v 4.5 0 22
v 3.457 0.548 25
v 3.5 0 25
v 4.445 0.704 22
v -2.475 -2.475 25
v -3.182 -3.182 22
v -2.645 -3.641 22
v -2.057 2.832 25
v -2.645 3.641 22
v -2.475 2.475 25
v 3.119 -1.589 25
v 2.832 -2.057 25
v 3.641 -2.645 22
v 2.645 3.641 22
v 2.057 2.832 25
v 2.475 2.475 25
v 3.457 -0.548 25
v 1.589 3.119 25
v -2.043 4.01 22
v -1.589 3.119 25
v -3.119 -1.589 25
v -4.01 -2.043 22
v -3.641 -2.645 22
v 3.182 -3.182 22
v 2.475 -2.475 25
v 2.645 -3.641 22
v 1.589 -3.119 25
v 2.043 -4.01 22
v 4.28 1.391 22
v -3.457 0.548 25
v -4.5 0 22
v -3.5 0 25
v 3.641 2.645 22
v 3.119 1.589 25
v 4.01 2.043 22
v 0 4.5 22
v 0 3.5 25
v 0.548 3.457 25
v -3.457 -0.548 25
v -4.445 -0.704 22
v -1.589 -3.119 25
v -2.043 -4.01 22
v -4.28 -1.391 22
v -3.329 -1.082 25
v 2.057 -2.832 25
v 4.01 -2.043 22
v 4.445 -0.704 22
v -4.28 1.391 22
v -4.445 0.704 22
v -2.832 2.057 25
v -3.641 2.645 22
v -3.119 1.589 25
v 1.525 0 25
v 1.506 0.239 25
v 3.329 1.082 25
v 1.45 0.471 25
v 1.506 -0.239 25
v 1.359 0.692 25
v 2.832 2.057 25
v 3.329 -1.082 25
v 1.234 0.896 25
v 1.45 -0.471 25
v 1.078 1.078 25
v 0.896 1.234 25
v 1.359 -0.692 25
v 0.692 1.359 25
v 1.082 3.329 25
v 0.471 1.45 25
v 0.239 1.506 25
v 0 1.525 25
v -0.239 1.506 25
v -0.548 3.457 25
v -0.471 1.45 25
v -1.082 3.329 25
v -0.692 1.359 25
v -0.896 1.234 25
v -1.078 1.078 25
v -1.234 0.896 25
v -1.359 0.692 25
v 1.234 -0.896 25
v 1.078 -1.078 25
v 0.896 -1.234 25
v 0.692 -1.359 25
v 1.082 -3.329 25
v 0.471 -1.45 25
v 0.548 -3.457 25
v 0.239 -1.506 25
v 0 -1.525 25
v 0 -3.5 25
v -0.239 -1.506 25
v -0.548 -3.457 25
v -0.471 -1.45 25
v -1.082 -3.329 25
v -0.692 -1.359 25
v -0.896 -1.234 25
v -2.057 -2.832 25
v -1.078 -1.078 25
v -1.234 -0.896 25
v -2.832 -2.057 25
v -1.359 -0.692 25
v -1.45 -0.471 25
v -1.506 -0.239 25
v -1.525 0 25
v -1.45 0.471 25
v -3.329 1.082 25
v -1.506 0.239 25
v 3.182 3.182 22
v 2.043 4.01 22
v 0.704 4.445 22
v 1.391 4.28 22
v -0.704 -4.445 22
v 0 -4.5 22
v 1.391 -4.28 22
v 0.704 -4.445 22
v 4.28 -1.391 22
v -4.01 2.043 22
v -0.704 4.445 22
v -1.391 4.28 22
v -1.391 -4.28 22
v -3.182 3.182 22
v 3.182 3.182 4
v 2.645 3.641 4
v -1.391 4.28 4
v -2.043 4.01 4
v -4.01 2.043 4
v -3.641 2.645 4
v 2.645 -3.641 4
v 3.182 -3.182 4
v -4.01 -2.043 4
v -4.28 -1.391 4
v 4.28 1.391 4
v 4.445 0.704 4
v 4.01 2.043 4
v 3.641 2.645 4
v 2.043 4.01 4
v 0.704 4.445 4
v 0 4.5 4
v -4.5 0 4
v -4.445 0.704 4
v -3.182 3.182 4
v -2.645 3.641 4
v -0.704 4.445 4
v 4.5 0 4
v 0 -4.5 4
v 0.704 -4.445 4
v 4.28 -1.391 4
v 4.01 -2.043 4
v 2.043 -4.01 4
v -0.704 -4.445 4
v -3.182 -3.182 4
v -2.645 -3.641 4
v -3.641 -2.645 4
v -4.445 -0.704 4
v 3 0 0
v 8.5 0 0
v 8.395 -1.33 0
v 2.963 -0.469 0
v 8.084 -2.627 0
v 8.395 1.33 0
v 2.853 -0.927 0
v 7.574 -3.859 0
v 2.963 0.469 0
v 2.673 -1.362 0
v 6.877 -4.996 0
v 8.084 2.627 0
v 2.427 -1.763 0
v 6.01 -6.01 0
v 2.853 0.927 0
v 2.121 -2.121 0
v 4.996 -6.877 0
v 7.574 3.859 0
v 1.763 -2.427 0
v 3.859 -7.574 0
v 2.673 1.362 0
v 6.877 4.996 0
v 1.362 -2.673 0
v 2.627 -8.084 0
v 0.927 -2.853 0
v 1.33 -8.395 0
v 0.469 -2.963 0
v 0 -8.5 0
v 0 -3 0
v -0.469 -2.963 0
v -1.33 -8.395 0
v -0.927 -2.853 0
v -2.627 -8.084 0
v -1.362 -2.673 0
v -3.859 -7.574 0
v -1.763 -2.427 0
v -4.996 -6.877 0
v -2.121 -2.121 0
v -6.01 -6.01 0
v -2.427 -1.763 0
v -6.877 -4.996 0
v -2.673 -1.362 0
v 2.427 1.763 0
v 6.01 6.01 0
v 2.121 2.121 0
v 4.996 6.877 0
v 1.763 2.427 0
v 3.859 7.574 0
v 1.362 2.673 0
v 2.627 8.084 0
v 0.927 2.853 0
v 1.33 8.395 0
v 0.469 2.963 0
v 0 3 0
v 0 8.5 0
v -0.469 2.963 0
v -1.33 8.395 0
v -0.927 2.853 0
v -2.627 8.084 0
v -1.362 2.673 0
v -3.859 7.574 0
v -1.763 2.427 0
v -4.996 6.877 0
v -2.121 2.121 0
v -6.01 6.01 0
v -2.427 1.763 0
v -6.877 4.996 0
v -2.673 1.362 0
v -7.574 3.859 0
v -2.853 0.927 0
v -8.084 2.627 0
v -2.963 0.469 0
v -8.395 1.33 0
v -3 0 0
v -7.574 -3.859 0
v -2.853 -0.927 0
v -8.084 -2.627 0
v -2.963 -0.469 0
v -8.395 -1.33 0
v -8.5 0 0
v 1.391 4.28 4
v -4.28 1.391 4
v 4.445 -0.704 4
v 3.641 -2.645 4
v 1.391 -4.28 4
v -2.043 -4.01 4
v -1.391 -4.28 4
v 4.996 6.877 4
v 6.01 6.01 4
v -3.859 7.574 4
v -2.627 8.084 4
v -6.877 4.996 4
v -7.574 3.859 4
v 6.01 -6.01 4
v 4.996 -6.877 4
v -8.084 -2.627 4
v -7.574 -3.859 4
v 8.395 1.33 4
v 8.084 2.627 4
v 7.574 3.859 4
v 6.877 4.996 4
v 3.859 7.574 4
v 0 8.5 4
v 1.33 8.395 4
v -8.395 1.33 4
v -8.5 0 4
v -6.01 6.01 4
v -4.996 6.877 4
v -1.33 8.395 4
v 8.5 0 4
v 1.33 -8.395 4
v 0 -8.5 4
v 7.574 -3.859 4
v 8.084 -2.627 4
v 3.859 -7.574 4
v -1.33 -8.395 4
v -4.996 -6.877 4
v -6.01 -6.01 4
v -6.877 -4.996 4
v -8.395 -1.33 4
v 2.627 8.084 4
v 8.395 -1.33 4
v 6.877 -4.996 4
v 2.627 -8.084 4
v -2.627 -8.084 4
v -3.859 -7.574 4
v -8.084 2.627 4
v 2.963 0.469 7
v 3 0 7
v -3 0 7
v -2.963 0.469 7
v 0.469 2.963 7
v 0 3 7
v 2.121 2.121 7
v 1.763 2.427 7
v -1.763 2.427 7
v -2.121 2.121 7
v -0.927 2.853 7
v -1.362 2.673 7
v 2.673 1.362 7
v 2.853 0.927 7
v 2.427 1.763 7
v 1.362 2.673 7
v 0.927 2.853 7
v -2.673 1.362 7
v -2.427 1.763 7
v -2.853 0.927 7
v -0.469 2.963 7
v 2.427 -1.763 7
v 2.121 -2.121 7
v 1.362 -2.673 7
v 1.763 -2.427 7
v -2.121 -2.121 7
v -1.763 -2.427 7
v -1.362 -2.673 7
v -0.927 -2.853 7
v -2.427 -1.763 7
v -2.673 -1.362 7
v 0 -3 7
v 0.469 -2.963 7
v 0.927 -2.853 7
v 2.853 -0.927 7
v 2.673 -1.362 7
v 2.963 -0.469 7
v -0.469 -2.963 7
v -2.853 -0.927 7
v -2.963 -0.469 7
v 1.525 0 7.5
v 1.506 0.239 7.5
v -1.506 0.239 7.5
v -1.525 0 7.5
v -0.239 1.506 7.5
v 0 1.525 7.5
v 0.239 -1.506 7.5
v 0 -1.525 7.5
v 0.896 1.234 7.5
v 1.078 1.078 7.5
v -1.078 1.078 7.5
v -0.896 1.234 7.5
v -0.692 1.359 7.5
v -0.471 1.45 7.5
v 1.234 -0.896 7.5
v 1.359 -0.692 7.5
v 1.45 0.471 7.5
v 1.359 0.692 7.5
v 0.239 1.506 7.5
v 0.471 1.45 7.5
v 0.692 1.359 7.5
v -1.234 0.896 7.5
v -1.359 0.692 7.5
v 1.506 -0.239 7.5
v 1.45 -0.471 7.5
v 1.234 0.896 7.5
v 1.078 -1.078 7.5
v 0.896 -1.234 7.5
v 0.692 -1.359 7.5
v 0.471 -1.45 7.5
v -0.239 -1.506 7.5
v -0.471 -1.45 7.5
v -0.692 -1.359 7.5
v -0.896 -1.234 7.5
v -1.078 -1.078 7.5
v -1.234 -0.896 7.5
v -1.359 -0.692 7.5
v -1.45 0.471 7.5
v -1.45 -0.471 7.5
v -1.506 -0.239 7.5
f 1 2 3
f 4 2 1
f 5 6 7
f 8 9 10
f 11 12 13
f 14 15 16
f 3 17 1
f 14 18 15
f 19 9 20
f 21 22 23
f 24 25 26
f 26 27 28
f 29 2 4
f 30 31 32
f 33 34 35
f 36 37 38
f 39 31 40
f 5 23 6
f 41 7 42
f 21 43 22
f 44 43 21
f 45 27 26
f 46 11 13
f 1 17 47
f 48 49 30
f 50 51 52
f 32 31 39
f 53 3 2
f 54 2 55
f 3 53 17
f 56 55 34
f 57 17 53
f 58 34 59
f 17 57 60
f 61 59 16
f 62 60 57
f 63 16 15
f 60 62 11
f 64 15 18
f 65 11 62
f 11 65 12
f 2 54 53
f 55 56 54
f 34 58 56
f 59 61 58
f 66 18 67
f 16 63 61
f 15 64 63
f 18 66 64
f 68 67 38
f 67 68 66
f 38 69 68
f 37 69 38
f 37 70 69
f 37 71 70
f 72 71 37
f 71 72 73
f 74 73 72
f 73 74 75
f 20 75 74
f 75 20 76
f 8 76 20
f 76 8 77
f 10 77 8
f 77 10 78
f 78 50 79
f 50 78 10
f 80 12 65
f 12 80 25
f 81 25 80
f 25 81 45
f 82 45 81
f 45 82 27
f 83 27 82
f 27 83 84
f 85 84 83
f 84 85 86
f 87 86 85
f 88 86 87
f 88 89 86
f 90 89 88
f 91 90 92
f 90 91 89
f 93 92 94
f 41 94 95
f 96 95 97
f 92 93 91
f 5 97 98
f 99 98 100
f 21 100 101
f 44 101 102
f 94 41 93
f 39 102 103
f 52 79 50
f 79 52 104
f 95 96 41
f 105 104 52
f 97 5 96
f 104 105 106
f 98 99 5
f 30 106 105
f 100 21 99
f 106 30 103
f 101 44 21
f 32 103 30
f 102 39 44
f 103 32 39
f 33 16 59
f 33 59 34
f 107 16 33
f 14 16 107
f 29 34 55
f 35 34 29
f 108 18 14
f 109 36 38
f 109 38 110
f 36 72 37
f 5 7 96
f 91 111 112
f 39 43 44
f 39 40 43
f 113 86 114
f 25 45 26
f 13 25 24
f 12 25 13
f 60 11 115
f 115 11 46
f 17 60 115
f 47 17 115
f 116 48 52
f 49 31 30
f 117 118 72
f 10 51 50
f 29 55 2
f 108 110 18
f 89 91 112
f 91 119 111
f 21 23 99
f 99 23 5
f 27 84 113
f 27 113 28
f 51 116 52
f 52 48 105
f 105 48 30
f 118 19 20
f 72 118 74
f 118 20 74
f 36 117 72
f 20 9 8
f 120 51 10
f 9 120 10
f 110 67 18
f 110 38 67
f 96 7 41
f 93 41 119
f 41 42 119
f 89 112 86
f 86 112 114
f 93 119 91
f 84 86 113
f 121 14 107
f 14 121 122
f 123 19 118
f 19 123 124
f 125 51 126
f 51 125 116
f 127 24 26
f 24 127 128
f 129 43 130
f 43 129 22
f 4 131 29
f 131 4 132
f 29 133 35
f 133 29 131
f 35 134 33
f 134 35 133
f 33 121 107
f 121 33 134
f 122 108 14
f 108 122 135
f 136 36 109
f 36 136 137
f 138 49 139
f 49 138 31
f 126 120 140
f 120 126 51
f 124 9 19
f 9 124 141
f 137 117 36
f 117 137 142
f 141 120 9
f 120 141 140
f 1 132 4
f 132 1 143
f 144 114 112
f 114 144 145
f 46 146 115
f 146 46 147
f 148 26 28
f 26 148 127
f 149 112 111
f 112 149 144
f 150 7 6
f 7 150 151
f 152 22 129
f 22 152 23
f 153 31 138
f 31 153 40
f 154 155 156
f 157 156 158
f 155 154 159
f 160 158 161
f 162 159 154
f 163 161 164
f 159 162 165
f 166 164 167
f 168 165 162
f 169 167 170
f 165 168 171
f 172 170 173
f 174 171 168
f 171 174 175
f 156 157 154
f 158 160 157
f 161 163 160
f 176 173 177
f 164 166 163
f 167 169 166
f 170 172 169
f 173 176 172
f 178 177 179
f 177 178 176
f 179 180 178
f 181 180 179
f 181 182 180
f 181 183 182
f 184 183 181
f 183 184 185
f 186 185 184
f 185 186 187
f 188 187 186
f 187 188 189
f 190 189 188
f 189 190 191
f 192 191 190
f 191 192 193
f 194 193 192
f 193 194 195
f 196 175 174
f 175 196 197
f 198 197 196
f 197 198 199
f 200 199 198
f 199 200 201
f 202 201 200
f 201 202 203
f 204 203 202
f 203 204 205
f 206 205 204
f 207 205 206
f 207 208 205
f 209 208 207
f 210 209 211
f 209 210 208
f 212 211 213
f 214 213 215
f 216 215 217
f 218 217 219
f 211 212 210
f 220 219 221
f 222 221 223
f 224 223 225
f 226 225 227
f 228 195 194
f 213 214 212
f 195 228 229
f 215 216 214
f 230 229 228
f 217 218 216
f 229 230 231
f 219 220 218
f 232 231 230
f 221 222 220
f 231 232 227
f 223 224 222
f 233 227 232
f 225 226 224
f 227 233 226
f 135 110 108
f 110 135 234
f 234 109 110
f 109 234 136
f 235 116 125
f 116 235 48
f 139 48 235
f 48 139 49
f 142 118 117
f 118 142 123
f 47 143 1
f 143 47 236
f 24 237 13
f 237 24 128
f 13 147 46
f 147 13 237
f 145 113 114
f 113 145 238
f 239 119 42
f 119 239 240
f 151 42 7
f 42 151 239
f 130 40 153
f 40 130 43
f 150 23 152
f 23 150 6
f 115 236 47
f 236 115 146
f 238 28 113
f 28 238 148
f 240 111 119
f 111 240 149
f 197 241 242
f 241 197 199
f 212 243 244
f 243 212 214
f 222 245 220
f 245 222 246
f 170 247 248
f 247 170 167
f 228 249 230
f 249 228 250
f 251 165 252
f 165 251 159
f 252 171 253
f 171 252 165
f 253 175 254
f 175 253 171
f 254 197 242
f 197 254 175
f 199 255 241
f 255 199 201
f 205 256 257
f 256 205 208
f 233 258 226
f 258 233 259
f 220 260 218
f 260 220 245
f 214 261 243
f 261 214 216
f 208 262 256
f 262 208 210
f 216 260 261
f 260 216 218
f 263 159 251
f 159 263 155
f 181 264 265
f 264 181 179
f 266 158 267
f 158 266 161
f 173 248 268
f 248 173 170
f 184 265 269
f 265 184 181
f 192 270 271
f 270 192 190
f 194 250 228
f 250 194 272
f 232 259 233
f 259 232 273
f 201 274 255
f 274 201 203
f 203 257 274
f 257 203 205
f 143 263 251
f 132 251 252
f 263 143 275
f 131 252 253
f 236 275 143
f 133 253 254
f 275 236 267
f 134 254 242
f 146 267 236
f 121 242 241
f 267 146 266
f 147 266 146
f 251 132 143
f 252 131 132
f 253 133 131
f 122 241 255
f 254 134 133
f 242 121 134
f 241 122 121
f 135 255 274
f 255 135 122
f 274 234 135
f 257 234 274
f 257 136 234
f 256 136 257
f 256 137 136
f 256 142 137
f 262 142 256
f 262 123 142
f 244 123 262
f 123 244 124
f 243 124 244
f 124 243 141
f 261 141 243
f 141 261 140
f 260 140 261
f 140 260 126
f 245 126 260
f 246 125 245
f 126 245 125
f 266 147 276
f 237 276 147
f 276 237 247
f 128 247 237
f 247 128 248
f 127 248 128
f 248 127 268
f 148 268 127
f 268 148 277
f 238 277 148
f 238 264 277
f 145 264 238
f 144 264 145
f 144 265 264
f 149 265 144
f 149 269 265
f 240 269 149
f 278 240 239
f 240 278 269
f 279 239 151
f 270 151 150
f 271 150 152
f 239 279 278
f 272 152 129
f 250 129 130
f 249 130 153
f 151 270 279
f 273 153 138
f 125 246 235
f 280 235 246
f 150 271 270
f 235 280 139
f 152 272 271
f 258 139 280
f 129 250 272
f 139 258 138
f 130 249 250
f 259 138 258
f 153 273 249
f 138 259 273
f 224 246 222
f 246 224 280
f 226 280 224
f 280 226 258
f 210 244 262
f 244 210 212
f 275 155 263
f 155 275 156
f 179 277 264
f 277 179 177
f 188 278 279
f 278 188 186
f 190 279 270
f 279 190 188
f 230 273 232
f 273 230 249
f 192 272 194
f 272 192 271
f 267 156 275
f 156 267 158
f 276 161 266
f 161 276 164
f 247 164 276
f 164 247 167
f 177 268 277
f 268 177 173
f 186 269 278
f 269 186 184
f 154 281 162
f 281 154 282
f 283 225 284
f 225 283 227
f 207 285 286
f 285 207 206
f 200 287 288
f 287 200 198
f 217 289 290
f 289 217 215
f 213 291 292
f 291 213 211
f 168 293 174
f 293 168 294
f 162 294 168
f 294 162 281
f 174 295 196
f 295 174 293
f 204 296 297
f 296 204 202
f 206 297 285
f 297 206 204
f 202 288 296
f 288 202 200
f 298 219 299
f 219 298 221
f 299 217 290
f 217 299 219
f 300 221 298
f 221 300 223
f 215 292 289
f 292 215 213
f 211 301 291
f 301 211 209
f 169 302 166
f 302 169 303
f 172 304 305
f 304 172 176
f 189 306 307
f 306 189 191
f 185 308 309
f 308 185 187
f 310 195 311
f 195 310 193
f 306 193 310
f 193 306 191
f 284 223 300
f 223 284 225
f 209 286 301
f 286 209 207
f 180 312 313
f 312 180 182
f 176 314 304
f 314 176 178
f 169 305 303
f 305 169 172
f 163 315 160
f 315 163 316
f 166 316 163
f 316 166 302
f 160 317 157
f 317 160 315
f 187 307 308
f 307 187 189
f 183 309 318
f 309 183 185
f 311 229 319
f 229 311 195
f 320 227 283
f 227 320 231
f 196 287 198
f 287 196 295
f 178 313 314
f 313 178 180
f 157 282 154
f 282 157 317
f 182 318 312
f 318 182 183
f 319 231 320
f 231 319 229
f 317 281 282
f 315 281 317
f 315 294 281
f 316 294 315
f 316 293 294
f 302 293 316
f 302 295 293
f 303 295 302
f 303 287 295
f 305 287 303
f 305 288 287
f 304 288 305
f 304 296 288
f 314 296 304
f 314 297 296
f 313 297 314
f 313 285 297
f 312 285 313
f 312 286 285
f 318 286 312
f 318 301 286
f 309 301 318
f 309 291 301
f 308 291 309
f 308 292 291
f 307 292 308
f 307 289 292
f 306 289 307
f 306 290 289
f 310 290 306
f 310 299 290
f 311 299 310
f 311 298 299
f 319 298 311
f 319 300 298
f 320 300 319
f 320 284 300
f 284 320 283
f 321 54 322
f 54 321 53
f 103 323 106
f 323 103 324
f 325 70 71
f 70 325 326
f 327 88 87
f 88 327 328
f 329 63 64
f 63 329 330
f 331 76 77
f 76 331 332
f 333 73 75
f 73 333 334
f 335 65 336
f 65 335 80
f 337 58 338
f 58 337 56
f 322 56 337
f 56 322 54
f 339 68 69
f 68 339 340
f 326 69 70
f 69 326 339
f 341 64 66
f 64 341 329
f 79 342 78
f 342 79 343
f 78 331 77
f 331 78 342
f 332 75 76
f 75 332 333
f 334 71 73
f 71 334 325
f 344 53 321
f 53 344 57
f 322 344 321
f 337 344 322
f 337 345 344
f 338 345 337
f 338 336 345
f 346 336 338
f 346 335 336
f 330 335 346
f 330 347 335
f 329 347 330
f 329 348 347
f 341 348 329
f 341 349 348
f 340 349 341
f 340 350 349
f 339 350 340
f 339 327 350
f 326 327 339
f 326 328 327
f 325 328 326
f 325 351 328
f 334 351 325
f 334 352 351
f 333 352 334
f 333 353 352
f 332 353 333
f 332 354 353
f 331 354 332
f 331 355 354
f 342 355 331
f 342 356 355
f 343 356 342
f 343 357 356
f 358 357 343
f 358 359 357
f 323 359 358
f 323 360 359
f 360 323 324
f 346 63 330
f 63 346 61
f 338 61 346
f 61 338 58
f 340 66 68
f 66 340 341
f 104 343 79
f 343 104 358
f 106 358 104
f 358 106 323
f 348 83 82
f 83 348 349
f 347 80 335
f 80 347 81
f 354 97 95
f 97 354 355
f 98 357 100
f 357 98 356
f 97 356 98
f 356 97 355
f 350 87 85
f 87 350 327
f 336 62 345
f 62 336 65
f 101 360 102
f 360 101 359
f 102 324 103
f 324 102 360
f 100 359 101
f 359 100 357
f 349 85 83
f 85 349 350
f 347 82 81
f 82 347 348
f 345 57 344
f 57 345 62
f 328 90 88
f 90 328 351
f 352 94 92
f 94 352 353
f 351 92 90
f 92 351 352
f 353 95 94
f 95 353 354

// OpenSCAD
hl = 23;
smooth = 40;

difference()
{

union() {
  translate([0,0,hl-1])
  color("DarkBlue")
  cylinder(3,d1=9,d2=7,$fn=smooth);
    
  color("blue")
  cylinder(hl-1,d=9,$fn=smooth);
    
  color("green")
  cylinder(4,d=17,$fn=smooth);

}

union() {
  color("pink")
  translate([0,0,-1])
  cylinder(7+1,d=6,$fn=smooth);

  color("red")
  translate([0,0,7+0.5])
  cylinder(hl,d=3.05,$fn=smooth);
}

}
